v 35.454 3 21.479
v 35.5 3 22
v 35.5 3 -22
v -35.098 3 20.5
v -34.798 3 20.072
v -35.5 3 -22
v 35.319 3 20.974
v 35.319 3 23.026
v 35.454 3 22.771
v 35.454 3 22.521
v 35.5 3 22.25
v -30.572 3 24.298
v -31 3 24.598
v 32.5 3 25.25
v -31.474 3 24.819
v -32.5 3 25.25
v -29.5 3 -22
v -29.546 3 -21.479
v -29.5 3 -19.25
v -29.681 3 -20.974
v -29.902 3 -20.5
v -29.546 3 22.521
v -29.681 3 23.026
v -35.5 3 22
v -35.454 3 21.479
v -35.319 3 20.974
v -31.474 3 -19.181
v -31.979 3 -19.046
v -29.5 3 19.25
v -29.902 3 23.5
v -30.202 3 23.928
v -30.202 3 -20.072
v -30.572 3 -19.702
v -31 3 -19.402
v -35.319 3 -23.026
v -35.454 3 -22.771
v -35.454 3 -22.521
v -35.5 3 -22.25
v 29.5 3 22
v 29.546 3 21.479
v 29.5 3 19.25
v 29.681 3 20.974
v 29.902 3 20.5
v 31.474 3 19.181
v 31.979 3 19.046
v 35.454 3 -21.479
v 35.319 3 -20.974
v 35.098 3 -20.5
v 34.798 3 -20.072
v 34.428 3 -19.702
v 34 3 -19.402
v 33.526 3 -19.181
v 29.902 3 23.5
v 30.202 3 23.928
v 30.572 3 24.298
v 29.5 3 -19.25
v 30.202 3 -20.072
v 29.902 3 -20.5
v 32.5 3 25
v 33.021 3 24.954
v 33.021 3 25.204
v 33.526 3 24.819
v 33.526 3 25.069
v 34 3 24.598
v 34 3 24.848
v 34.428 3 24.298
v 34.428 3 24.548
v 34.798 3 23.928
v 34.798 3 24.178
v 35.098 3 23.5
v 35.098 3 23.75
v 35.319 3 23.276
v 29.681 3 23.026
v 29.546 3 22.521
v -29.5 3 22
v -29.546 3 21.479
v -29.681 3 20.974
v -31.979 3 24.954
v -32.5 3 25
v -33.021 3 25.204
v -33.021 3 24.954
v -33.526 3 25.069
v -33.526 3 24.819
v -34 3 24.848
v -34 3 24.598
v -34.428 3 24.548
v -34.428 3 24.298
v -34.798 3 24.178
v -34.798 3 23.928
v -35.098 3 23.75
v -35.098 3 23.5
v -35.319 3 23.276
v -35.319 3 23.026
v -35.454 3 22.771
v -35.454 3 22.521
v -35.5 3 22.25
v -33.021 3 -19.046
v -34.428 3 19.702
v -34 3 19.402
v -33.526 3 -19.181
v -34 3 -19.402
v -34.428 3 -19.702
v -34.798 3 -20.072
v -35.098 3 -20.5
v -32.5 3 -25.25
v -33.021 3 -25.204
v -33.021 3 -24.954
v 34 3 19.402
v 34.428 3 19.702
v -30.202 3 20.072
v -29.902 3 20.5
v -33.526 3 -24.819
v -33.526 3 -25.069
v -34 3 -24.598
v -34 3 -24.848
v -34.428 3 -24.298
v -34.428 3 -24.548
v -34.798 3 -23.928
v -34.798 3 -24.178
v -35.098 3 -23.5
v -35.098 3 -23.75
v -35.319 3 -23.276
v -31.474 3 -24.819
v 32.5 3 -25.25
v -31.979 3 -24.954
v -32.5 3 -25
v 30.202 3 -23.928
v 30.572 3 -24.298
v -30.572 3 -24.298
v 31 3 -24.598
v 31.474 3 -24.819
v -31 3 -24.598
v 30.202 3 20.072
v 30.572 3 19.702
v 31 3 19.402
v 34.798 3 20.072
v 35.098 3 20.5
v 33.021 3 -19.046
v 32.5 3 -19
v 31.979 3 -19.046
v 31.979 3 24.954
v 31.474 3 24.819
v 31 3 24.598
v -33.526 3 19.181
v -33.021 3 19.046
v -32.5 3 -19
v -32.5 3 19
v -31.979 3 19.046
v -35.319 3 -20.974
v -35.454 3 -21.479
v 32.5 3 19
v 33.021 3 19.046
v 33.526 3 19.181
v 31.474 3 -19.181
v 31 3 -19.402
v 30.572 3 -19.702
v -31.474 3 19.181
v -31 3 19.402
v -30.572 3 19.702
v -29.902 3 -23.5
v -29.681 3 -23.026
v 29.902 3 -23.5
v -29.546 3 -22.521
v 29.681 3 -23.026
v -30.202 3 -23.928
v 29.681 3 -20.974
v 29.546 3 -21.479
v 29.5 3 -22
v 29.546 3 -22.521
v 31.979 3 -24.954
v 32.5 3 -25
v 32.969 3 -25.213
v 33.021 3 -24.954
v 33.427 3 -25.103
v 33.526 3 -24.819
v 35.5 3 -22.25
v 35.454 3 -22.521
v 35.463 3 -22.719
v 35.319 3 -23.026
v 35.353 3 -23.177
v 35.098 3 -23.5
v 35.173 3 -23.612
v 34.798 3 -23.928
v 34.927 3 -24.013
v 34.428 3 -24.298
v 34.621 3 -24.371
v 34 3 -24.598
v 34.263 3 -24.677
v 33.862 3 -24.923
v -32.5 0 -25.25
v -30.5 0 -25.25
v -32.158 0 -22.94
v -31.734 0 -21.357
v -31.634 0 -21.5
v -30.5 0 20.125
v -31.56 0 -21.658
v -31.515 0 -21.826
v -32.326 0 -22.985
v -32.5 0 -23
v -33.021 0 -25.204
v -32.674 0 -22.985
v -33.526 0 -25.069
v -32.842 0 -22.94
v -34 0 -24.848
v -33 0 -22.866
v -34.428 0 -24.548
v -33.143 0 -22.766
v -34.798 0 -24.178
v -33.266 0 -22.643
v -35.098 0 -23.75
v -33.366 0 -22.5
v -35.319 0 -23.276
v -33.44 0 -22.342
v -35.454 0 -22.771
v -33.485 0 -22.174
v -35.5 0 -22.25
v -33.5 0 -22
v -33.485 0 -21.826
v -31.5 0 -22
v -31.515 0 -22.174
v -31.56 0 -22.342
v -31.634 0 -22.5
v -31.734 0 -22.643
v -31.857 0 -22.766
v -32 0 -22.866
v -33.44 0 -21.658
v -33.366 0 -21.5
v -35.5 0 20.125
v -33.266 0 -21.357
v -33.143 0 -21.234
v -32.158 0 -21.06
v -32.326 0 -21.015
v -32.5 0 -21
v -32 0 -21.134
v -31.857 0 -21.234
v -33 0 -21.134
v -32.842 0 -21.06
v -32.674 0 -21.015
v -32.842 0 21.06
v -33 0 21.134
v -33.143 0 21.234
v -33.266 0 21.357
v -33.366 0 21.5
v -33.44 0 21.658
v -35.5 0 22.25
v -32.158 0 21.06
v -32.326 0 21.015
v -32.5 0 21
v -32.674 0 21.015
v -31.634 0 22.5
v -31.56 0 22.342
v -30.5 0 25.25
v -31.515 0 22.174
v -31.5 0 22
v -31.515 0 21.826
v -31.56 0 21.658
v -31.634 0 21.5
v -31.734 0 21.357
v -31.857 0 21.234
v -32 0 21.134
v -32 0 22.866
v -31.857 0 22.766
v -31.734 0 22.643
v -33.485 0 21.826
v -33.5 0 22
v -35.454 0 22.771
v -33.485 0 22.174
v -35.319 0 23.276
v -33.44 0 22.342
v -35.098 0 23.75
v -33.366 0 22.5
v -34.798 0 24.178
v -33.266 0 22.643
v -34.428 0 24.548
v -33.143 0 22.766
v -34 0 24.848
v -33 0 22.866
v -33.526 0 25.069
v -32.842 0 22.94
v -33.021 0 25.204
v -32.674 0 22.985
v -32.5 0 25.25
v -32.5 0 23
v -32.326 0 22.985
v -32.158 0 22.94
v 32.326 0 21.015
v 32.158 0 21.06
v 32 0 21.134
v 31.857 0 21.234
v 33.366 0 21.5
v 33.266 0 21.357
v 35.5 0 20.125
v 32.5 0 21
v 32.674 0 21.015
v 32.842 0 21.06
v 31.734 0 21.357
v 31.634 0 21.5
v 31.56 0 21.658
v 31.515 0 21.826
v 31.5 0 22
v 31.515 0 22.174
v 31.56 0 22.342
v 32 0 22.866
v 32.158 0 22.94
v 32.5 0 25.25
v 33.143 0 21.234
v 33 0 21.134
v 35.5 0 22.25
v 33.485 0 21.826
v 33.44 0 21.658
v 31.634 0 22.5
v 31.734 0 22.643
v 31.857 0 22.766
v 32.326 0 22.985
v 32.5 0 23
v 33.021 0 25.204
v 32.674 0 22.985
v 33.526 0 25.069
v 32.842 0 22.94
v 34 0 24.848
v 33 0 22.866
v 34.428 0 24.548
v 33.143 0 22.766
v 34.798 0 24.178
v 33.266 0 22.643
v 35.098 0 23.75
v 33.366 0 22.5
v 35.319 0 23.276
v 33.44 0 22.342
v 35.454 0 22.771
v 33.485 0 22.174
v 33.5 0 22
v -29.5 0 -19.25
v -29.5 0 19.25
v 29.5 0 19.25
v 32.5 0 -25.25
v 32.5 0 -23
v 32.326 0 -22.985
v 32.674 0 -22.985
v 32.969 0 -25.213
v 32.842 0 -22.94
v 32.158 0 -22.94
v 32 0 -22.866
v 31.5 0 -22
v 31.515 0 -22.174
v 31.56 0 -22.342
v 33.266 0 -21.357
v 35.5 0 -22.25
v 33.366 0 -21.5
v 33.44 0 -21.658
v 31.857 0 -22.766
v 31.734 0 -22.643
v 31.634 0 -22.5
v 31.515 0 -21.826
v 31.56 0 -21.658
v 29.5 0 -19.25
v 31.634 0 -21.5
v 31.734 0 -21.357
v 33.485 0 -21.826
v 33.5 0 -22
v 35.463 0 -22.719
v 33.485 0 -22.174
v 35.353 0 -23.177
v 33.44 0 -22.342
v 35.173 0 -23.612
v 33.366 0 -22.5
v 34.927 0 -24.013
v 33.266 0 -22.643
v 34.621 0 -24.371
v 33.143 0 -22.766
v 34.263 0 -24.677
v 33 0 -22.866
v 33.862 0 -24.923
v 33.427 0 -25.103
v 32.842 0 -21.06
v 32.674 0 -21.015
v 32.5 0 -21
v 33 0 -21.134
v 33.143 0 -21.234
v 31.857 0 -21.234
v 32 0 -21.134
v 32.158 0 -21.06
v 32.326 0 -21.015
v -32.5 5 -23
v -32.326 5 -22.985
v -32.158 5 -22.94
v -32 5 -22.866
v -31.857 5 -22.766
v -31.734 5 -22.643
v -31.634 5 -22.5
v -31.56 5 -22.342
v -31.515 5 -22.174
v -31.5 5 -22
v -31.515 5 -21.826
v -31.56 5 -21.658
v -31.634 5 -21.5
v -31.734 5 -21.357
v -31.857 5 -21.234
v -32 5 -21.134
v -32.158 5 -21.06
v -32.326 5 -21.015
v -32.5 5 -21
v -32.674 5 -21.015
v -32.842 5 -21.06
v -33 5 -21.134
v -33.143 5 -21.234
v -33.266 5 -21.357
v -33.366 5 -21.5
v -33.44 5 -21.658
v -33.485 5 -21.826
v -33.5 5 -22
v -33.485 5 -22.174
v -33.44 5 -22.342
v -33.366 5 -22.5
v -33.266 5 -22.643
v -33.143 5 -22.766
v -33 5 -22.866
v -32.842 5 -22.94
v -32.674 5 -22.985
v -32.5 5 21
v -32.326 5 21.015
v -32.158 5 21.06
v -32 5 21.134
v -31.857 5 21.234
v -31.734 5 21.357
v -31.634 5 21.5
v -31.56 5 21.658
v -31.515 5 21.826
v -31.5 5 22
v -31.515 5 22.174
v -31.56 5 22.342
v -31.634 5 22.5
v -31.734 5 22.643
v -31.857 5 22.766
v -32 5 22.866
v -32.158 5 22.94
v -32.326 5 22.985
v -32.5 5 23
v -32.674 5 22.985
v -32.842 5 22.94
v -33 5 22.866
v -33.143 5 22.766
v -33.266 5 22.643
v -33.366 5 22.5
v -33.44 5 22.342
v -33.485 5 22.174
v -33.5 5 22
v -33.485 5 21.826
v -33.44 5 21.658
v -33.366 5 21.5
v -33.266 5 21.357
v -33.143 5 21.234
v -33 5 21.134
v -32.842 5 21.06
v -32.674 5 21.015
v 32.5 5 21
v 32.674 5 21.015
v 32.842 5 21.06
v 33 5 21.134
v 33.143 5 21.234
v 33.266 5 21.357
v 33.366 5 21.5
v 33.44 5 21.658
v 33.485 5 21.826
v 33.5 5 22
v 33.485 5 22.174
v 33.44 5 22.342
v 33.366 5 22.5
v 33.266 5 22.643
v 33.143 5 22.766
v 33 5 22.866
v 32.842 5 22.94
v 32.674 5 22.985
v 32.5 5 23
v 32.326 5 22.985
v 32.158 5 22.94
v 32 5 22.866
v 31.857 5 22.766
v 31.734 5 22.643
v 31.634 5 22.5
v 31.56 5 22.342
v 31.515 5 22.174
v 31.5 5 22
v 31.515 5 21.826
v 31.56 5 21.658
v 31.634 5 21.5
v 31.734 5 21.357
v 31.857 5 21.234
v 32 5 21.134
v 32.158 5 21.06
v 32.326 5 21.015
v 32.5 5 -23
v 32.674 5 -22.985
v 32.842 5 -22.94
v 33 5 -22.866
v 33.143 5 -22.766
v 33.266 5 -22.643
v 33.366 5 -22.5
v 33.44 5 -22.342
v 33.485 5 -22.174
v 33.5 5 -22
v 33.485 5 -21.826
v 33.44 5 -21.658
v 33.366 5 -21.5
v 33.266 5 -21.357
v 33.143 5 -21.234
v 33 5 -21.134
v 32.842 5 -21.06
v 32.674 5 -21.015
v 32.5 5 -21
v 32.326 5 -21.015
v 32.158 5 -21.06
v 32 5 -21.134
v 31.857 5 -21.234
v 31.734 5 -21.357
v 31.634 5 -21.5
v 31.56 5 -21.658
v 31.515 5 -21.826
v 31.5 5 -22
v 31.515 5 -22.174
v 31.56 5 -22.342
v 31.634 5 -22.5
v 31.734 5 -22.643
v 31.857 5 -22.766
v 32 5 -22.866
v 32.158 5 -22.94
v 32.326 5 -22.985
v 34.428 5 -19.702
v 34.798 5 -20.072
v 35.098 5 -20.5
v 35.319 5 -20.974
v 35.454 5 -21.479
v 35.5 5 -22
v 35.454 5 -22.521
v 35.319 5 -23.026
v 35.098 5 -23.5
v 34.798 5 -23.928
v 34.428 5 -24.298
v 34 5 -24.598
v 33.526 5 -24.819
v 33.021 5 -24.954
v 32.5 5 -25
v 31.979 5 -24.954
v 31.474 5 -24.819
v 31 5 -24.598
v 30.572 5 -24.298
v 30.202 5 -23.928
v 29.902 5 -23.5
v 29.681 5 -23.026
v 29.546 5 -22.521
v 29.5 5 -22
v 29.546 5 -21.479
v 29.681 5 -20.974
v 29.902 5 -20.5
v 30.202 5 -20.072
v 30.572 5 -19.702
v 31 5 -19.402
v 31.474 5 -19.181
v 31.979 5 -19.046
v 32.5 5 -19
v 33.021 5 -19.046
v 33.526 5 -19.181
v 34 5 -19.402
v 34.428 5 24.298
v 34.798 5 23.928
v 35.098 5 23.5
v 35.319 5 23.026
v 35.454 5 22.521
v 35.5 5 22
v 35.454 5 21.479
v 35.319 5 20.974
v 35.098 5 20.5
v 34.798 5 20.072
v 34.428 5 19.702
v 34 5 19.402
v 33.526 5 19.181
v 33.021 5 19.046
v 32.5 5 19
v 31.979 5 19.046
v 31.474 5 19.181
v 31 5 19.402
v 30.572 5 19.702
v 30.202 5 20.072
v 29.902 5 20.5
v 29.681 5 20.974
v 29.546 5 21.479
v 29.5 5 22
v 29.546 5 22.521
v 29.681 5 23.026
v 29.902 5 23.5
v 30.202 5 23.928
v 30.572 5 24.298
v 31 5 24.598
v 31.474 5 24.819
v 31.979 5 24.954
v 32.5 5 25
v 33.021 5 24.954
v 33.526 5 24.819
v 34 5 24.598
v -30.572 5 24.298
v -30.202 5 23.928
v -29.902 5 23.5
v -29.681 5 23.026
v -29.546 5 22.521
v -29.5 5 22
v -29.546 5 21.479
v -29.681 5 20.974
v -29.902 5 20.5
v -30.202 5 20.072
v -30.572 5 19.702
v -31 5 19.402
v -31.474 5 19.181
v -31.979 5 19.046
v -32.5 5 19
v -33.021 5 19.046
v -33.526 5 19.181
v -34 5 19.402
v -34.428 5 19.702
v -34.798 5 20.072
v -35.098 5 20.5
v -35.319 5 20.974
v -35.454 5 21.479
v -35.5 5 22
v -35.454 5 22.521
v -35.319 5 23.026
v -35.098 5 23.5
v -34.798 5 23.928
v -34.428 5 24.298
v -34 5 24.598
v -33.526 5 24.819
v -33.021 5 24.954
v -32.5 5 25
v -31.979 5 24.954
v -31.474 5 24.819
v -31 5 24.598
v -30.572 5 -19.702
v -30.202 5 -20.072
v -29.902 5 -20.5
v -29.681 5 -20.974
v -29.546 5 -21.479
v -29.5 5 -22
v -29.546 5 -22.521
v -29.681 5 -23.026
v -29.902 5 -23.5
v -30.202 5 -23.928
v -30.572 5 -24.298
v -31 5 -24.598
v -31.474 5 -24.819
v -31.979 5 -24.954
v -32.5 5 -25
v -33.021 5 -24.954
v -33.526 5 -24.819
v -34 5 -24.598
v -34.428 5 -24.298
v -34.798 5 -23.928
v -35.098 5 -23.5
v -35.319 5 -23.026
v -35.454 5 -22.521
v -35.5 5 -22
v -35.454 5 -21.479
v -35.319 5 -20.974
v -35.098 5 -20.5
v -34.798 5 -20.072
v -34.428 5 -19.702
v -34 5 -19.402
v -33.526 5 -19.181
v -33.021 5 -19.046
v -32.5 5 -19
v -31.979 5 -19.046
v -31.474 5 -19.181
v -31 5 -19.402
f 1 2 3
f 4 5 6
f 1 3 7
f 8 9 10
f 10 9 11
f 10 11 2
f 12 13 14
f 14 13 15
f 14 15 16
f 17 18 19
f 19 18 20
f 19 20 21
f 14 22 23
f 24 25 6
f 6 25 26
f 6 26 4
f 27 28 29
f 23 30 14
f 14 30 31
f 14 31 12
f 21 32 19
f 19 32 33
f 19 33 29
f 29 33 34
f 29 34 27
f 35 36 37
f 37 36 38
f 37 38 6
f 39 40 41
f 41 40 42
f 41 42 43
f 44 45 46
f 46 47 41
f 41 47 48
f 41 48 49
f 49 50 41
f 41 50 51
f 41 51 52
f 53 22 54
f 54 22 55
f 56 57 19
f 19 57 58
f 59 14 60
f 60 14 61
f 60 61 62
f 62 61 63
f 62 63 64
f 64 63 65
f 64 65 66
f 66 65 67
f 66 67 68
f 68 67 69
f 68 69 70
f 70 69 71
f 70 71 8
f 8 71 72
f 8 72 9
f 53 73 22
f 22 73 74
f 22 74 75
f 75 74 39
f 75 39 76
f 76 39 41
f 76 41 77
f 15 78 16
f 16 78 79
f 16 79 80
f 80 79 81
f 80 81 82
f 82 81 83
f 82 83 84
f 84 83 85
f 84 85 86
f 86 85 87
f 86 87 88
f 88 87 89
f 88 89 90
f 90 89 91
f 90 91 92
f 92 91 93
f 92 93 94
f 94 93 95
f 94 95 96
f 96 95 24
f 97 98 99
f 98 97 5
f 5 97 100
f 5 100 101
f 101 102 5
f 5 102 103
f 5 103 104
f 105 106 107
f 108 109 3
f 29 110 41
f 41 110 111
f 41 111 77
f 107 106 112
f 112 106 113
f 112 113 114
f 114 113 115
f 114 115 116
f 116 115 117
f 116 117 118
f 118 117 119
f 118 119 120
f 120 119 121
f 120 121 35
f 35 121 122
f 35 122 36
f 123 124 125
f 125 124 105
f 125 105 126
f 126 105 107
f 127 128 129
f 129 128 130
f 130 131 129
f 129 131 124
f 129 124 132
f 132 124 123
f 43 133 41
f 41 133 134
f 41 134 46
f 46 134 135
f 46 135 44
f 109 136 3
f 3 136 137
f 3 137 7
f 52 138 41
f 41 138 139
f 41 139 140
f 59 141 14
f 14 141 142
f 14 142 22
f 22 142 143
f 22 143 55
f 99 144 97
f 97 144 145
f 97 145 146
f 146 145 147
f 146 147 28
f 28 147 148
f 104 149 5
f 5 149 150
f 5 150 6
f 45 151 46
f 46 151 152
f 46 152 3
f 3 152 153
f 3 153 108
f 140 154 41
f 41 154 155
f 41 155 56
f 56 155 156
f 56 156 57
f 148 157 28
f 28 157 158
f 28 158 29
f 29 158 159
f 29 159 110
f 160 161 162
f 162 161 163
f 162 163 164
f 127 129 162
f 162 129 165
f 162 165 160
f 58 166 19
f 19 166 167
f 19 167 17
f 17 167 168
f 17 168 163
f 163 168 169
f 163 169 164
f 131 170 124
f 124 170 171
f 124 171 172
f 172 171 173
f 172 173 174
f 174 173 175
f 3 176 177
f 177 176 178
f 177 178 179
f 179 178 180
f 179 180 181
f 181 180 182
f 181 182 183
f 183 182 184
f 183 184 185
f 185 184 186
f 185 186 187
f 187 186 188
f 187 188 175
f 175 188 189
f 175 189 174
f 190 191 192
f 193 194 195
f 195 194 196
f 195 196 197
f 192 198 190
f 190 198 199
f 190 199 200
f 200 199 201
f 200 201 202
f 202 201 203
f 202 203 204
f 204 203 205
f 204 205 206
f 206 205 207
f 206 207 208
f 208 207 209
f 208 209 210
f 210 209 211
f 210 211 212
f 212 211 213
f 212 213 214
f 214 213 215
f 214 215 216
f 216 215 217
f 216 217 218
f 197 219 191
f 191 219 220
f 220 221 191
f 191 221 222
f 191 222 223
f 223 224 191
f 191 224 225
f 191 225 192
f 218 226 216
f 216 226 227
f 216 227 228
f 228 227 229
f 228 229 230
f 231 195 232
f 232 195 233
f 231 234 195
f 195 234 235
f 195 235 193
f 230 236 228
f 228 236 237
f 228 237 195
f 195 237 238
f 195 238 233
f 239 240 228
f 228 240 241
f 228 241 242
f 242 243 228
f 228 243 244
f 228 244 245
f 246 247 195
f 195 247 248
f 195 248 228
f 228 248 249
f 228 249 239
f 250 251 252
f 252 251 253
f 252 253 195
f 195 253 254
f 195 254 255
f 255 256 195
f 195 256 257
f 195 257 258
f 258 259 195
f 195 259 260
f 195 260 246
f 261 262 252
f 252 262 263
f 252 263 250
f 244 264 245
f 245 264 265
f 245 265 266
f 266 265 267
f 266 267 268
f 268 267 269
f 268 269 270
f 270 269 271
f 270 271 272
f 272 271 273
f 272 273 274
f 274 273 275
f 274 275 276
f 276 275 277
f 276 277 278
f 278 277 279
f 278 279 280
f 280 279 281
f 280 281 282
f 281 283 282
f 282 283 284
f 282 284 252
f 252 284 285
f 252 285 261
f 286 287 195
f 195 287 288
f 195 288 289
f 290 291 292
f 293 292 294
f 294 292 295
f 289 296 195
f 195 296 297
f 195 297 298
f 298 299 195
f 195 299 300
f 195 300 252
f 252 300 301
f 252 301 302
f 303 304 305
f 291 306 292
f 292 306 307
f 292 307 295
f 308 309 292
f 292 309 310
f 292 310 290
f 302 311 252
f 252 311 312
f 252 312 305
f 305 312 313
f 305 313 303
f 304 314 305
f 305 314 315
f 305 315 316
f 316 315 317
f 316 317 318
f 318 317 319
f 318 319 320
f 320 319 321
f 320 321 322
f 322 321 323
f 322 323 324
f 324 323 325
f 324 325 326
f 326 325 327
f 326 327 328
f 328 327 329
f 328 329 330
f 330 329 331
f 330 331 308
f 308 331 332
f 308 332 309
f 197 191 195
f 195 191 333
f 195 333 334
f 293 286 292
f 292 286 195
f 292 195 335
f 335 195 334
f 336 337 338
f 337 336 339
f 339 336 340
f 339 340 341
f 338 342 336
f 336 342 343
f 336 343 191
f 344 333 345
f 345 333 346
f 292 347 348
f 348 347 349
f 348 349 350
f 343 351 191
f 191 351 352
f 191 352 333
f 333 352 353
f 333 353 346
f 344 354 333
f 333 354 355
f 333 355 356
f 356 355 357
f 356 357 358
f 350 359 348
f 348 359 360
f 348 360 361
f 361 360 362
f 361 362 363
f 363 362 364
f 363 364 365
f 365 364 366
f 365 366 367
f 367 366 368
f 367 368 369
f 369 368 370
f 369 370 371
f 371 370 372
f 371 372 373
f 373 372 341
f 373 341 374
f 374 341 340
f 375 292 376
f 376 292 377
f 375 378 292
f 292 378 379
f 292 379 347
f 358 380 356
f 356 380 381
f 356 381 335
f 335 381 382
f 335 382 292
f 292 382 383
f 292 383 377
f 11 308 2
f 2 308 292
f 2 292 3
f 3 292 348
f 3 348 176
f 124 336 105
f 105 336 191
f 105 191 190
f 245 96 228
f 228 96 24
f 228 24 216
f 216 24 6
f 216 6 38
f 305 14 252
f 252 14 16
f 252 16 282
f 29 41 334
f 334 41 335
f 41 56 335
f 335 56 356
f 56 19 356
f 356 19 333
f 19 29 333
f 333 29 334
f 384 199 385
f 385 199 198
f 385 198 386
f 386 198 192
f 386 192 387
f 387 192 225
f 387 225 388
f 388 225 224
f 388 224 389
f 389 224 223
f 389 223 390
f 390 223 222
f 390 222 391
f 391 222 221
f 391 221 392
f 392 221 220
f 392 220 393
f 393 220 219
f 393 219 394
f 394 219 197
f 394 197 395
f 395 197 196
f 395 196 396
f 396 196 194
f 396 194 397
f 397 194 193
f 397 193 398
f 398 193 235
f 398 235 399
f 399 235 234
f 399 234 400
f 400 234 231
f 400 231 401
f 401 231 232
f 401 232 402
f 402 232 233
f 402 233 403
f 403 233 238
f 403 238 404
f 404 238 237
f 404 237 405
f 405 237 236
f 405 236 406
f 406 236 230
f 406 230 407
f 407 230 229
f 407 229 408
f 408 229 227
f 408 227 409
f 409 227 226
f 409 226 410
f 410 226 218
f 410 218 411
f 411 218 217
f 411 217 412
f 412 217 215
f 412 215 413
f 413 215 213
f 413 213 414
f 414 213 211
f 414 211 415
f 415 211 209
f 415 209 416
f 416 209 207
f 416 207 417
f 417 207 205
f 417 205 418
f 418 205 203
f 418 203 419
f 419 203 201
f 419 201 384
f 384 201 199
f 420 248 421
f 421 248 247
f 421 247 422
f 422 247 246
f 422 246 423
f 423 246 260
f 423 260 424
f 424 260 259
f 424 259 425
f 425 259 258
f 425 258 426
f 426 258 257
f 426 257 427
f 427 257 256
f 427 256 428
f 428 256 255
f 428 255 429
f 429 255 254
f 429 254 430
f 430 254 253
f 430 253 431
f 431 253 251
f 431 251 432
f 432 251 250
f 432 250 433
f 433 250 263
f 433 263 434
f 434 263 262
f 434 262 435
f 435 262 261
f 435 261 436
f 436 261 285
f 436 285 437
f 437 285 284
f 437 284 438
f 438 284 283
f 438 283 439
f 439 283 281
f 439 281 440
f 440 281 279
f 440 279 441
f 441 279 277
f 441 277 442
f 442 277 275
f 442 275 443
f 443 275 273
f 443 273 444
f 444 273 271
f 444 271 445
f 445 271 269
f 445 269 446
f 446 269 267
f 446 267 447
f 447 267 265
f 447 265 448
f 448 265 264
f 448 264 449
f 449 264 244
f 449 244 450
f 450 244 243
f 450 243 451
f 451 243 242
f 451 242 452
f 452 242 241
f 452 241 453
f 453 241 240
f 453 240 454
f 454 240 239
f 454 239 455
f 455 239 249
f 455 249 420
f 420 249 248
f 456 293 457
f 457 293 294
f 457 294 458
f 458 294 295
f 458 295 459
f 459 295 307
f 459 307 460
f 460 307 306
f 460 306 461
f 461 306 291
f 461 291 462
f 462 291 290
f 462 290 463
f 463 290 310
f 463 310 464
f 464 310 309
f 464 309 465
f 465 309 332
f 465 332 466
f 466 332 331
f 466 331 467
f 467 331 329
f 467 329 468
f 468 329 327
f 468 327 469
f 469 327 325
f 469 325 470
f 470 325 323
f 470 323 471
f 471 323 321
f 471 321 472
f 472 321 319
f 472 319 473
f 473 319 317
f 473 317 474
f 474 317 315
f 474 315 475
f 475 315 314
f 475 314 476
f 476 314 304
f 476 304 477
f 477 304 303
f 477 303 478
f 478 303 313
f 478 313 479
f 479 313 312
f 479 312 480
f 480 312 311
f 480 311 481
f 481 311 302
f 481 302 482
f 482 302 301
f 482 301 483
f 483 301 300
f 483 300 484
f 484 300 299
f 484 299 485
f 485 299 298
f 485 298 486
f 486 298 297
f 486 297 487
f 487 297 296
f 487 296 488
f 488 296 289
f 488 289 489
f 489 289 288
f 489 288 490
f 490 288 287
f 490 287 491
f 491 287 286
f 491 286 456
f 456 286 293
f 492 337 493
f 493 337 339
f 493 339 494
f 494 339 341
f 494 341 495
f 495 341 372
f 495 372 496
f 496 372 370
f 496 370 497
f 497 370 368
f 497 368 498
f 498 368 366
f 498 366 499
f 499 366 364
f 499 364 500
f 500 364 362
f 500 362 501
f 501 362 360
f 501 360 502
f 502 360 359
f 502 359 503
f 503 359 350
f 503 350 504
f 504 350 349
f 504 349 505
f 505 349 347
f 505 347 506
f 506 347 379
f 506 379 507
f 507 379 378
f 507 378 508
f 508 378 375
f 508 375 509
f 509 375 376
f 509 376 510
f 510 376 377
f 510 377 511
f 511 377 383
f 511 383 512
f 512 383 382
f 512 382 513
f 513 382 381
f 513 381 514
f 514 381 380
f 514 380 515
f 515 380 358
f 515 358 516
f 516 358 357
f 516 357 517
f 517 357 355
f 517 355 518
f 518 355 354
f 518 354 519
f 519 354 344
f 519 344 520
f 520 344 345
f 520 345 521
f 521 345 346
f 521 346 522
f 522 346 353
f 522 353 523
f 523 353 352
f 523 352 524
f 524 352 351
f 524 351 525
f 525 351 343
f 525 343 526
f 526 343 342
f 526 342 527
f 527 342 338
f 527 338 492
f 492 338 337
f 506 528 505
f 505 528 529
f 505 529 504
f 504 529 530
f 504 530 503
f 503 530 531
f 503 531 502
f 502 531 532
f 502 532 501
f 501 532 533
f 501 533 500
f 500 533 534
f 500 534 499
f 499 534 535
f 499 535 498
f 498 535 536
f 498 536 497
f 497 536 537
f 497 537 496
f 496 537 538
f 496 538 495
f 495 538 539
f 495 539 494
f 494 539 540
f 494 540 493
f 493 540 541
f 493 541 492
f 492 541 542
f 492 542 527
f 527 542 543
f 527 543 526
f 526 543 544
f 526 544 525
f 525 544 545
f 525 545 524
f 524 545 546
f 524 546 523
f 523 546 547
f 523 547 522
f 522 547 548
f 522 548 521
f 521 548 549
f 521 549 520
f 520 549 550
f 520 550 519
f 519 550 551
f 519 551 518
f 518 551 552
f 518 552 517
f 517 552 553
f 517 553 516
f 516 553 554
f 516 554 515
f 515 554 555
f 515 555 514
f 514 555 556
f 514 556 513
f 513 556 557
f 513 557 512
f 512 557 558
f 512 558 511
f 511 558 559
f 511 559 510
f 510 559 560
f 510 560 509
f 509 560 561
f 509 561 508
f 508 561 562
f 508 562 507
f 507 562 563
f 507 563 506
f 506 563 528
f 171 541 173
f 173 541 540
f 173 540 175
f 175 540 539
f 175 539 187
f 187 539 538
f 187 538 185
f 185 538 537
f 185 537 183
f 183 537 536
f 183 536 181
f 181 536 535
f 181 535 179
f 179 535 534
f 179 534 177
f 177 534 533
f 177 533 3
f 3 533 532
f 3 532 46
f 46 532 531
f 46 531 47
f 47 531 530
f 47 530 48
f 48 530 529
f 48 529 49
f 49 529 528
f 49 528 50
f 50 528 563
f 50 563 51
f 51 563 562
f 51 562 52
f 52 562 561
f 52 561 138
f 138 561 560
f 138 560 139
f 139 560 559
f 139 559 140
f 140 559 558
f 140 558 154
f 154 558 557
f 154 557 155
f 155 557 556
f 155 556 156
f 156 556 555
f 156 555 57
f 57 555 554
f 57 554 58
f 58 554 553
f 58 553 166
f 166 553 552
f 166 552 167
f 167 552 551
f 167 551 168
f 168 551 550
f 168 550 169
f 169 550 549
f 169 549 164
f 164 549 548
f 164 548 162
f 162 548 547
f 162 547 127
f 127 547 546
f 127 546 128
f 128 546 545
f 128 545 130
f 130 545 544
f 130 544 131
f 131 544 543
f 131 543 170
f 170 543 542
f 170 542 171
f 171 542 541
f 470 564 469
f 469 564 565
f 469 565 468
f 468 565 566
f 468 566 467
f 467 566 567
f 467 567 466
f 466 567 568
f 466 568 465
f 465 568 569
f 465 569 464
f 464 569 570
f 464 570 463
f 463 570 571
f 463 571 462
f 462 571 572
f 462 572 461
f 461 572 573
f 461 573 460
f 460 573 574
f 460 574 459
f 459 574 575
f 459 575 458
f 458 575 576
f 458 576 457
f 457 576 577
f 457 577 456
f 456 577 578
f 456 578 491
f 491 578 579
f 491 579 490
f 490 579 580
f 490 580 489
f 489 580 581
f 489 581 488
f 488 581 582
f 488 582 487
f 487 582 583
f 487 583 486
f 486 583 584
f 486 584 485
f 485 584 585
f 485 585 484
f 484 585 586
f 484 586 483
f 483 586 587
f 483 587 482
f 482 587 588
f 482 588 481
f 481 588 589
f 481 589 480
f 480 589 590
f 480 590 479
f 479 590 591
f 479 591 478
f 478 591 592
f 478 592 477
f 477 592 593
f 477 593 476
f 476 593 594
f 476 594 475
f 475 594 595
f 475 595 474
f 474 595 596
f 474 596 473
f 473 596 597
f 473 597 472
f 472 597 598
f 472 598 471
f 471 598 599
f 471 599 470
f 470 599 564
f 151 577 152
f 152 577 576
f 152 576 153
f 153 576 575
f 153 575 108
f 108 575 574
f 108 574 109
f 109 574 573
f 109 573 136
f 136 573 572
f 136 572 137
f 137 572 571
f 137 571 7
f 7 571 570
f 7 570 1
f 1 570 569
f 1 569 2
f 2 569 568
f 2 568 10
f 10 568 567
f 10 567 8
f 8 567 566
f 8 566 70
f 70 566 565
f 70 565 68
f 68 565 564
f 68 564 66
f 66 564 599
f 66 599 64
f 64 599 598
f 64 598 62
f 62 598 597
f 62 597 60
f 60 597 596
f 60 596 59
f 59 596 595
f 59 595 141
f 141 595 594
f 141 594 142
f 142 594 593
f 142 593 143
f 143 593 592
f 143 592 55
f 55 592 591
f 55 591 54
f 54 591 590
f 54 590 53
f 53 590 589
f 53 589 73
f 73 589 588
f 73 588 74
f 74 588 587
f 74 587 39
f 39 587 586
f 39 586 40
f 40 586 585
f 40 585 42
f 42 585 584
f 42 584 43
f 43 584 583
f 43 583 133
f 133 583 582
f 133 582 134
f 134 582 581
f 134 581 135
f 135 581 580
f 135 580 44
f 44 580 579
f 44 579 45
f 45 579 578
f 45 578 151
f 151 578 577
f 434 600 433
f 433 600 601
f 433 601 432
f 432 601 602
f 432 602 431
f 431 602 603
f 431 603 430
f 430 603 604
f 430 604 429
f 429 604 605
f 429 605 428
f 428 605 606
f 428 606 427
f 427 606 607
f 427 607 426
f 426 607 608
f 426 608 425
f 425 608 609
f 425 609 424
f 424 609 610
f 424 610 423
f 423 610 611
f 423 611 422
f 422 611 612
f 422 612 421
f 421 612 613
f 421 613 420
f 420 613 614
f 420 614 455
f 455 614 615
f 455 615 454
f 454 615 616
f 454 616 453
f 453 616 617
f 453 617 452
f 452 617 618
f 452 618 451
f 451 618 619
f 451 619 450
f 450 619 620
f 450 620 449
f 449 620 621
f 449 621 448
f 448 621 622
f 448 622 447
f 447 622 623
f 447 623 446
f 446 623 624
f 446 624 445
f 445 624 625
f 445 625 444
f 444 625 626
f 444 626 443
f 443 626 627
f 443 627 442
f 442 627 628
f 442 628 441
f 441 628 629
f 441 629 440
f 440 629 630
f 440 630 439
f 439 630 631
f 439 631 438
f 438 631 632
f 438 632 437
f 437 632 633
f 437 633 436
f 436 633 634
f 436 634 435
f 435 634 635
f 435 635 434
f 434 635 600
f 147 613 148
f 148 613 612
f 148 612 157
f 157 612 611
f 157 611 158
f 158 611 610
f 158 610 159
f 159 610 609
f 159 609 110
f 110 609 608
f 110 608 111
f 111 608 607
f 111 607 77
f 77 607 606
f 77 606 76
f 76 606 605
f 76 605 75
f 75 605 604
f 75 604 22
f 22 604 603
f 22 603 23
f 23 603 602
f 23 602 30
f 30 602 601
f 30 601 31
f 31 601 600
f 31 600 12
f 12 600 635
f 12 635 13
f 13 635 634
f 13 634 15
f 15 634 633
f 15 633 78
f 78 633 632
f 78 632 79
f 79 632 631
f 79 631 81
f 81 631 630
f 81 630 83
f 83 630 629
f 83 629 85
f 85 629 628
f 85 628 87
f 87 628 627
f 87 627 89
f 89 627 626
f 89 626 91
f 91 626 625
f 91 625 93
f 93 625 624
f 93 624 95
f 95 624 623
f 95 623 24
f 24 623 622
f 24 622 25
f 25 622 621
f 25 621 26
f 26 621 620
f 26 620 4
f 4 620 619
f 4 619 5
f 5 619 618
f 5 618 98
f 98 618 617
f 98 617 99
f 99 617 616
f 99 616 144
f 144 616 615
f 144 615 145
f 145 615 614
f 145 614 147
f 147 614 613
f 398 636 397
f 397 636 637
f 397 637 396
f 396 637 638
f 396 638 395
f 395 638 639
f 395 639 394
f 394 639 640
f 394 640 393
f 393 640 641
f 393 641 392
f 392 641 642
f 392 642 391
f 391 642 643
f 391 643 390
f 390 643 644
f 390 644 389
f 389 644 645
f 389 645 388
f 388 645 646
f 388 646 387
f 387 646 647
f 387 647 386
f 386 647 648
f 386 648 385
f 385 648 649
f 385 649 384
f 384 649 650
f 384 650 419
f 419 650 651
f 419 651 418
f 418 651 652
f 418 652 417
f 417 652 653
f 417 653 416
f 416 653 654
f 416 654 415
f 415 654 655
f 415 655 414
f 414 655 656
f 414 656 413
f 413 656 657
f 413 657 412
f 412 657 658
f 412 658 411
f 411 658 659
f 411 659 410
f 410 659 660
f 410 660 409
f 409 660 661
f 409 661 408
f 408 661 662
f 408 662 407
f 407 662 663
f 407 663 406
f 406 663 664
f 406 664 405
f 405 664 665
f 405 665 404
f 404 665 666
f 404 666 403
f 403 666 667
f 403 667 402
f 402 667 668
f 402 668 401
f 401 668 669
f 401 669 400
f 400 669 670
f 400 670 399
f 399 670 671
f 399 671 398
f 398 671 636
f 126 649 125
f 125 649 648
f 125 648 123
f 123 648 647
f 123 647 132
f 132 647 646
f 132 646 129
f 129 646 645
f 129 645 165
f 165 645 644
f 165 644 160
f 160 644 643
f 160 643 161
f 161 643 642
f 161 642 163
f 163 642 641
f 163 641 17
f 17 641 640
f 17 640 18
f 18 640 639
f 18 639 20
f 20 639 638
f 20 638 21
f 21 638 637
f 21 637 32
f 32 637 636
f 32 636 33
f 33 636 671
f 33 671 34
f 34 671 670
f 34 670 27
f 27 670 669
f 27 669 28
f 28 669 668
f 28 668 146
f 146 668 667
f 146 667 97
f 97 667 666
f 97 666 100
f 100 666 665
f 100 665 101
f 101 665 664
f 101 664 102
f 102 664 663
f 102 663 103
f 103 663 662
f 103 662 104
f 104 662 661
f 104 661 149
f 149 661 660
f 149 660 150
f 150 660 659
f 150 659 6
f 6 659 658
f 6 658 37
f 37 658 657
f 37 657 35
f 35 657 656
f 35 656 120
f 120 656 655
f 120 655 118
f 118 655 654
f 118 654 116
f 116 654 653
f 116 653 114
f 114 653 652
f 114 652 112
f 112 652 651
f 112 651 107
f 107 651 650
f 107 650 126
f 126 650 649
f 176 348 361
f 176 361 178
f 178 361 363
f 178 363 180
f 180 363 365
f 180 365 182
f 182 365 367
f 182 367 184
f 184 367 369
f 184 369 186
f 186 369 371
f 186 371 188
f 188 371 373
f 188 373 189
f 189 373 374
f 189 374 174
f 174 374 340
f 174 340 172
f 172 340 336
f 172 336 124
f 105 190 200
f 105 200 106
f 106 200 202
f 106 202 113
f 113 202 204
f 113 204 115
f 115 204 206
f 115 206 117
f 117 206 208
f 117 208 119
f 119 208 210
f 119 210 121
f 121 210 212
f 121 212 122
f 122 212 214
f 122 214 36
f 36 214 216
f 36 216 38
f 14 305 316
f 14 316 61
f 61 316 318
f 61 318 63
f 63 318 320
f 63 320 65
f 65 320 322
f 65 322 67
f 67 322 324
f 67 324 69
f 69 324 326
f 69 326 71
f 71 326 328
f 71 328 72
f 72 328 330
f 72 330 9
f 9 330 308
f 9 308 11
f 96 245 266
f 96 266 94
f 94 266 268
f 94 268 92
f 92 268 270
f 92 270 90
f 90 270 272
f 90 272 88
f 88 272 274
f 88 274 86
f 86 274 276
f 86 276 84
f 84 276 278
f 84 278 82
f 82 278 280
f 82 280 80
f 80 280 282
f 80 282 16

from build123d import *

# Parameters (mm, degrees)
SKETCH1_W           = 71
SKETCH1_H           = 50.5
SKETCH1_R           = 1
SKETCH1_W_2         = 59
SKETCH1_H_2         = 38.5
BOSS_EXTRUDE1_DEPTH = 3
SKETCH2_R           = 3
SKETCH2_R_2         = 1
BOSS_EXTRUDE2_DEPTH = 2
FILLET1_R           = 3


with BuildPart() as part:
    # Sketch1 → Boss-Extrude1 (new body)
    with BuildSketch(Plane(origin=(0, 0, 0), x_dir=(1, 0, 0), z_dir=(0, 1, 0))):
        Rectangle(SKETCH1_W, SKETCH1_H)
        with Locations(Location((-32.5, 22, 0), (0, 0, 270))):
            Circle(SKETCH1_R, mode=Mode.SUBTRACT)
        with Locations(Location((-32.5, -22, 0), (0, 0, 270))):
            Circle(SKETCH1_R, mode=Mode.SUBTRACT)
        with Locations(Location((32.5, -22, 0), (0, 0, 270))):
            Circle(SKETCH1_R, mode=Mode.SUBTRACT)
        with Locations(Location((32.5, 22, 0), (0, 0, 270))):
            Circle(SKETCH1_R, mode=Mode.SUBTRACT)
        Rectangle(SKETCH1_W_2, SKETCH1_H_2, mode=Mode.SUBTRACT)
    extrude(amount=BOSS_EXTRUDE1_DEPTH)

    # Sketch2 → Boss-Extrude2 (add)
    # profile 1 of 4: a face of its own
    with BuildSketch(Plane(origin=(0, 3, 0), x_dir=(1, 0, 0), z_dir=(0, 1, 0))):
        with Locations((32.5, 22)):
            Circle(SKETCH2_R)
        with Locations(Location((32.5, 22, 0), (0, 0, 270))):
            Circle(SKETCH2_R_2, mode=Mode.SUBTRACT)
    # profile 2 of 4: a face of its own
    with BuildSketch(Plane(origin=(0, 3, 0), x_dir=(1, 0, 0), z_dir=(0, 1, 0))):
        with Locations((32.5, -22)):
            Circle(SKETCH2_R)
        with Locations(Location((32.5, -22, 0), (0, 0, 270))):
            Circle(SKETCH2_R_2, mode=Mode.SUBTRACT)
    # profile 3 of 4: a face of its own
    with BuildSketch(Plane(origin=(0, 3, 0), x_dir=(1, 0, 0), z_dir=(0, 1, 0))):
        with Locations(Location((-32.5, -22, 0), (0, 0, 180))):
            Circle(SKETCH2_R)
        with Locations(Location((-32.5, -22, 0), (0, 0, 270))):
            Circle(SKETCH2_R_2, mode=Mode.SUBTRACT)
    # profile 4 of 4: a face of its own
    with BuildSketch(Plane(origin=(0, 3, 0), x_dir=(1, 0, 0), z_dir=(0, 1, 0))):
        with Locations(Location((-32.5, 22, 0), (0, 0, 180))):
            Circle(SKETCH2_R)
        with Locations(Location((-32.5, 22, 0), (0, 0, 270))):
            Circle(SKETCH2_R_2, mode=Mode.SUBTRACT)
    extrude(amount=BOSS_EXTRUDE2_DEPTH)

    # Fillet1
    fillet1_edges = [part.edges().sort_by_distance(p)[0] for p in [
        (35.5, 1.5, 25.25),
        (-35.5, 1.5, 25.25),
        (-35.5, 1.5, -25.25),
        (35.5, 1.5, -25.25),
    ]]
    fillet(fillet1_edges, radius=FILLET1_R)


solid = part.part
